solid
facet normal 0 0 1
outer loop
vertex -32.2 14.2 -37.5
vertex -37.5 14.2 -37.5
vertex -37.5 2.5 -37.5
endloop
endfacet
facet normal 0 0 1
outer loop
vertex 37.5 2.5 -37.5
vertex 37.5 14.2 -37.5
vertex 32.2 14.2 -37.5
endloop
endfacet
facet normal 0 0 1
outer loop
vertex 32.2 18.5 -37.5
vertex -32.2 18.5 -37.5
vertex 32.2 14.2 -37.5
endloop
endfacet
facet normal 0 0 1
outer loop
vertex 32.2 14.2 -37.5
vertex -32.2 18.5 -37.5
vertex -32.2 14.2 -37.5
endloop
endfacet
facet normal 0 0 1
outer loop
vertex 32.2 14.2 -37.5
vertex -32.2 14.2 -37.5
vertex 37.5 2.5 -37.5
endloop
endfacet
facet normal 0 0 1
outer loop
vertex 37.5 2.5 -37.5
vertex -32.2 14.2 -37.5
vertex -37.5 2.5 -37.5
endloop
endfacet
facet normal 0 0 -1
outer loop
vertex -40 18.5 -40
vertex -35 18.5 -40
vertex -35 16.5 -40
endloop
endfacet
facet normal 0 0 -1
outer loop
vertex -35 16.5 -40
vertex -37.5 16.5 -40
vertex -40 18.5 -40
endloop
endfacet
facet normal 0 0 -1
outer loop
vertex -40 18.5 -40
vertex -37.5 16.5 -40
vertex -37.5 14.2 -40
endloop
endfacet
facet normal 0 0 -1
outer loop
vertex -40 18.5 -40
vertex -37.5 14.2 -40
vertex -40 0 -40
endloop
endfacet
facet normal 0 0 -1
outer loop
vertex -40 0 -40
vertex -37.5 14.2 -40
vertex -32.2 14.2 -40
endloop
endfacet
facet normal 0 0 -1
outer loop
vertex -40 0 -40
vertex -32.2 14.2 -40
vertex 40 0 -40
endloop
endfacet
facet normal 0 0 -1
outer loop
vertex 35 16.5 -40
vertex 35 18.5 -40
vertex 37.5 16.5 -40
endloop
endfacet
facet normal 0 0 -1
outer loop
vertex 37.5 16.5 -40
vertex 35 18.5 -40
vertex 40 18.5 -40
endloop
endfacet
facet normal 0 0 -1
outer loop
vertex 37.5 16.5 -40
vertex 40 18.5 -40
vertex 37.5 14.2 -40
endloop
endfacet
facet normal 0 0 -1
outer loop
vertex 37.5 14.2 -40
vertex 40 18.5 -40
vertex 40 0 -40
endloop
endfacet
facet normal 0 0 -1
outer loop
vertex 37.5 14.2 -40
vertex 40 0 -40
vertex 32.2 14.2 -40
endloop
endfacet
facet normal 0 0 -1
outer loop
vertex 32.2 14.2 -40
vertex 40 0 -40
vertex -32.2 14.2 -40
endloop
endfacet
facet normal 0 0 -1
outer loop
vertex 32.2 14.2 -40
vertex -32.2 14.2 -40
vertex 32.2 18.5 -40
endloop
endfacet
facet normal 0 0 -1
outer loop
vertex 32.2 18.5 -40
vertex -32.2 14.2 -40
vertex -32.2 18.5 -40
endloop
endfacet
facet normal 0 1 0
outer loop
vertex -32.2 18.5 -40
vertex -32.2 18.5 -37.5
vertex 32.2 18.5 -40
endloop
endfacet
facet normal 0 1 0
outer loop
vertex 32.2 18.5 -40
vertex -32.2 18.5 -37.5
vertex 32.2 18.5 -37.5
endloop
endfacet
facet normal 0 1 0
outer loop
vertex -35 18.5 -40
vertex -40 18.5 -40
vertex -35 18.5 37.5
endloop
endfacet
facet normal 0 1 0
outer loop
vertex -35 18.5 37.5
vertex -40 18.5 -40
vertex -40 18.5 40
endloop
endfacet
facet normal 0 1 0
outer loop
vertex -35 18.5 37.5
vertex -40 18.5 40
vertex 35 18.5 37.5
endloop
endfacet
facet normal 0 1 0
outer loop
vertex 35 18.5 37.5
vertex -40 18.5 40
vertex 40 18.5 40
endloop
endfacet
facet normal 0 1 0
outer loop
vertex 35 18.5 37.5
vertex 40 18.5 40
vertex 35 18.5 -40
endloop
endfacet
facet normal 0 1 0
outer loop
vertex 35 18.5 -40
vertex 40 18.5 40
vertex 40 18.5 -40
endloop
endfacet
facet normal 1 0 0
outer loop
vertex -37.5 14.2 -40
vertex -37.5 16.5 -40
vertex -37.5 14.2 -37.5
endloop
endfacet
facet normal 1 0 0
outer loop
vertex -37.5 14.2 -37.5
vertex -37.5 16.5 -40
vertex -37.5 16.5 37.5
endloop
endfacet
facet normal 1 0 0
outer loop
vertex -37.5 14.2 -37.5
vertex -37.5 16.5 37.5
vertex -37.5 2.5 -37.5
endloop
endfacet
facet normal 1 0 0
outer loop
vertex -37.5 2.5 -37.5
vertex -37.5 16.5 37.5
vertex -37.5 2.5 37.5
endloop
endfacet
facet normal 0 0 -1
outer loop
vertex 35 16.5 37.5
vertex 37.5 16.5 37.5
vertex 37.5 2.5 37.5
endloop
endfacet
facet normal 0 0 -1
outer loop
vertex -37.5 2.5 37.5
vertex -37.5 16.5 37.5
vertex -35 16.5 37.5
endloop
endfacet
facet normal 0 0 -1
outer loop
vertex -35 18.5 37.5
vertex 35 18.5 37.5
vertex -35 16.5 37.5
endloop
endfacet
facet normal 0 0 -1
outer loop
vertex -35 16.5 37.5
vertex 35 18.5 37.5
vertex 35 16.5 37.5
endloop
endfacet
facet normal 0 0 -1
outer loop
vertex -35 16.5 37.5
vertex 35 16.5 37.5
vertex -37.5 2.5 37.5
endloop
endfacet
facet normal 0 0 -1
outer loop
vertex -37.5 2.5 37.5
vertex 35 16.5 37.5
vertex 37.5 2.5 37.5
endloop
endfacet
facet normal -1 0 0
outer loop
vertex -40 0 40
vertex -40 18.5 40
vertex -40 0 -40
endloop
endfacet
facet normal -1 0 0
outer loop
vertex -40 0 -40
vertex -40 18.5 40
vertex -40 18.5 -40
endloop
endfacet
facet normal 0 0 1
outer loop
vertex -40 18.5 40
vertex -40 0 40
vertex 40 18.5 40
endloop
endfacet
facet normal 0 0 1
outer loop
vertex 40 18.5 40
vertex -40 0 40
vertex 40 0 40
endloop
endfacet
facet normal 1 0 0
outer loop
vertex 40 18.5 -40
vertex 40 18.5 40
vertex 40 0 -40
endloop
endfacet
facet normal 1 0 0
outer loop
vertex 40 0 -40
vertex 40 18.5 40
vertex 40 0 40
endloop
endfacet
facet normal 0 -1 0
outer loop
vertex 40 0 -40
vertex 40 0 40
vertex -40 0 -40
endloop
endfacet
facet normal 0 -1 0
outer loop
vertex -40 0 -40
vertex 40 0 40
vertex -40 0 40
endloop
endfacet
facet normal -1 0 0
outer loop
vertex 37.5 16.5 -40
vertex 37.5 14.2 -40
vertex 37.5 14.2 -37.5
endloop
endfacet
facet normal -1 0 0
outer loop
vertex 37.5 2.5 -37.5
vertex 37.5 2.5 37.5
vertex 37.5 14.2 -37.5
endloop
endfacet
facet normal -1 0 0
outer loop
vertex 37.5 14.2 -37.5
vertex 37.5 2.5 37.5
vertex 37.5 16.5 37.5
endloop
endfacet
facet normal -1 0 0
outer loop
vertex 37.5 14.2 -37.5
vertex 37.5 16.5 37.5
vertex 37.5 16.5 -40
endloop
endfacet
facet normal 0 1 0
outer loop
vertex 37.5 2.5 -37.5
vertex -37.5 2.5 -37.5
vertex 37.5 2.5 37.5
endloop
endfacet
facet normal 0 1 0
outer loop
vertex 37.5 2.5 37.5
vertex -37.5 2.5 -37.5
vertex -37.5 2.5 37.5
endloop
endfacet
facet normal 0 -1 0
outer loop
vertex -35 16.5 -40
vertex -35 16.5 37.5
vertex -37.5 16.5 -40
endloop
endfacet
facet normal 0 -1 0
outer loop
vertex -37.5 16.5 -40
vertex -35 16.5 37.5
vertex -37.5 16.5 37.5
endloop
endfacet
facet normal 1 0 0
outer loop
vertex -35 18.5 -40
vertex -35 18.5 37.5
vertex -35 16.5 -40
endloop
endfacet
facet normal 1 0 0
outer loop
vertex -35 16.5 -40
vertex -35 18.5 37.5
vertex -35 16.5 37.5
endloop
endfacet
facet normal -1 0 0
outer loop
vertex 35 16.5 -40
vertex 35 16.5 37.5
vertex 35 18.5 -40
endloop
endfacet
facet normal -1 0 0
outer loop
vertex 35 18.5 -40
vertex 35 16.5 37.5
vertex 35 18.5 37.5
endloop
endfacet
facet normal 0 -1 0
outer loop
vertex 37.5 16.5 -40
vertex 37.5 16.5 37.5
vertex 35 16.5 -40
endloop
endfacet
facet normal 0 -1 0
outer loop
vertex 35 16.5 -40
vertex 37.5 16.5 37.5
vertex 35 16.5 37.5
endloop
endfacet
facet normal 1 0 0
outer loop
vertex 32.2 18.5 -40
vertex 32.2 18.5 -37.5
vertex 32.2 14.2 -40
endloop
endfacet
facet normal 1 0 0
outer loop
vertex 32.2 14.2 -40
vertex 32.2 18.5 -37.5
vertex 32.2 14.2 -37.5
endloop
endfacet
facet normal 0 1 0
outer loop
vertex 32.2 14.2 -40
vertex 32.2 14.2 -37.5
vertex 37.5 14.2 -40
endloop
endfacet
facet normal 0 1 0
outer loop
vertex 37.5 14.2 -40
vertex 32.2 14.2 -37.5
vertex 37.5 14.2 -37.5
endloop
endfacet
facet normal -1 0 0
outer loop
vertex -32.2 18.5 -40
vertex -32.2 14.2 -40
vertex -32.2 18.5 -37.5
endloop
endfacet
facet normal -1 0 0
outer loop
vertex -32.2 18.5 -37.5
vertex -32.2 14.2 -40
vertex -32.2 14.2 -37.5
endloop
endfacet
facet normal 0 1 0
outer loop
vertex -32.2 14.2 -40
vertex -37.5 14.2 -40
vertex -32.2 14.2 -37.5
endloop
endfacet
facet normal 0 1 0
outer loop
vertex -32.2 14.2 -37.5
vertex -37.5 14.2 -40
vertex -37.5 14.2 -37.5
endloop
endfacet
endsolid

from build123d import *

# Parameters (mm, degrees)
SKETCH1_W           = 80
SKETCH1_H           = 80
BOSS_EXTRUDE1_DEPTH = 2.5
SKETCH2_W           = 80
SKETCH2_H           = 80
SKETCH2_W_2         = 75
SKETCH2_H_2         = 75
BOSS_EXTRUDE2_DEPTH = 16
BOSS_EXTRUDE3_REACH = 93.336
SKETCH4_W           = 5
SKETCH4_H           = 2
CUT_EXTRUDE2_DEPTH  = 2.5


with BuildPart() as part:
    # Sketch1 → Boss-Extrude1 (new body)
    with BuildSketch(Plane(origin=(0, 0, 0), x_dir=(1, 0, 0), z_dir=(0, 1, 0))):
        Rectangle(SKETCH1_W, SKETCH1_H)
    extrude(amount=BOSS_EXTRUDE1_DEPTH)

    # Sketch2 → Boss-Extrude2 (add)
    with BuildSketch(Plane(origin=(0, 2.5, 0), x_dir=(1, 0, 0), z_dir=(0, 1, 0))):
        Rectangle(SKETCH2_W, SKETCH2_H)
        Rectangle(SKETCH2_W_2, SKETCH2_H_2, mode=Mode.SUBTRACT)
    extrude(amount=BOSS_EXTRUDE2_DEPTH)

    # Sketch4 → Boss-Extrude3 (add, up to next)
    with BuildSketch(Plane.XY.offset(40), mode=Mode.PRIVATE) as boss_extrude3_sk1:
        with Locations((-37.5, 17.5)):
            Rectangle(SKETCH4_W, SKETCH4_H)
    boss_extrude3_tool1 = extrude(boss_extrude3_sk1.sketch, amount=-BOSS_EXTRUDE3_REACH, mode=Mode.PRIVATE) - part.part
    # Sketch4 → Boss-Extrude3 (add, up to next)
    with BuildSketch(Plane.XY.offset(40), mode=Mode.PRIVATE) as boss_extrude3_sk2:
        with Locations((37.5, 17.5)):
            Rectangle(SKETCH4_W, SKETCH4_H)
    boss_extrude3_tool2 = extrude(boss_extrude3_sk2.sketch, amount=-BOSS_EXTRUDE3_REACH, mode=Mode.PRIVATE) - part.part
    add(boss_extrude3_tool1.solids().sort_by_distance((-37.5, 17.5, 40))[0])
    add(boss_extrude3_tool2.solids().sort_by_distance((37.5, 17.5, 40))[0])

    # Sketch5 → Cut-Extrude2 (cut)
    with BuildSketch(Plane(origin=(0, 0, -40), x_dir=(-1, 0, 0), z_dir=(0, 0, -1))):
        Polygon((-32.2, 18.5), (-35, 18.5), (-35, 16.5), (-37.5, 16.5), (-37.5, 14.2), (-32.2, 14.2), align=None)
        Polygon((35, 18.5), (32.2, 18.5), (32.2, 14.2), (37.5, 14.2), (37.5, 16.5), (35, 16.5), align=None)
    extrude(amount=-CUT_EXTRUDE2_DEPTH, mode=Mode.SUBTRACT)


solid = part.part
